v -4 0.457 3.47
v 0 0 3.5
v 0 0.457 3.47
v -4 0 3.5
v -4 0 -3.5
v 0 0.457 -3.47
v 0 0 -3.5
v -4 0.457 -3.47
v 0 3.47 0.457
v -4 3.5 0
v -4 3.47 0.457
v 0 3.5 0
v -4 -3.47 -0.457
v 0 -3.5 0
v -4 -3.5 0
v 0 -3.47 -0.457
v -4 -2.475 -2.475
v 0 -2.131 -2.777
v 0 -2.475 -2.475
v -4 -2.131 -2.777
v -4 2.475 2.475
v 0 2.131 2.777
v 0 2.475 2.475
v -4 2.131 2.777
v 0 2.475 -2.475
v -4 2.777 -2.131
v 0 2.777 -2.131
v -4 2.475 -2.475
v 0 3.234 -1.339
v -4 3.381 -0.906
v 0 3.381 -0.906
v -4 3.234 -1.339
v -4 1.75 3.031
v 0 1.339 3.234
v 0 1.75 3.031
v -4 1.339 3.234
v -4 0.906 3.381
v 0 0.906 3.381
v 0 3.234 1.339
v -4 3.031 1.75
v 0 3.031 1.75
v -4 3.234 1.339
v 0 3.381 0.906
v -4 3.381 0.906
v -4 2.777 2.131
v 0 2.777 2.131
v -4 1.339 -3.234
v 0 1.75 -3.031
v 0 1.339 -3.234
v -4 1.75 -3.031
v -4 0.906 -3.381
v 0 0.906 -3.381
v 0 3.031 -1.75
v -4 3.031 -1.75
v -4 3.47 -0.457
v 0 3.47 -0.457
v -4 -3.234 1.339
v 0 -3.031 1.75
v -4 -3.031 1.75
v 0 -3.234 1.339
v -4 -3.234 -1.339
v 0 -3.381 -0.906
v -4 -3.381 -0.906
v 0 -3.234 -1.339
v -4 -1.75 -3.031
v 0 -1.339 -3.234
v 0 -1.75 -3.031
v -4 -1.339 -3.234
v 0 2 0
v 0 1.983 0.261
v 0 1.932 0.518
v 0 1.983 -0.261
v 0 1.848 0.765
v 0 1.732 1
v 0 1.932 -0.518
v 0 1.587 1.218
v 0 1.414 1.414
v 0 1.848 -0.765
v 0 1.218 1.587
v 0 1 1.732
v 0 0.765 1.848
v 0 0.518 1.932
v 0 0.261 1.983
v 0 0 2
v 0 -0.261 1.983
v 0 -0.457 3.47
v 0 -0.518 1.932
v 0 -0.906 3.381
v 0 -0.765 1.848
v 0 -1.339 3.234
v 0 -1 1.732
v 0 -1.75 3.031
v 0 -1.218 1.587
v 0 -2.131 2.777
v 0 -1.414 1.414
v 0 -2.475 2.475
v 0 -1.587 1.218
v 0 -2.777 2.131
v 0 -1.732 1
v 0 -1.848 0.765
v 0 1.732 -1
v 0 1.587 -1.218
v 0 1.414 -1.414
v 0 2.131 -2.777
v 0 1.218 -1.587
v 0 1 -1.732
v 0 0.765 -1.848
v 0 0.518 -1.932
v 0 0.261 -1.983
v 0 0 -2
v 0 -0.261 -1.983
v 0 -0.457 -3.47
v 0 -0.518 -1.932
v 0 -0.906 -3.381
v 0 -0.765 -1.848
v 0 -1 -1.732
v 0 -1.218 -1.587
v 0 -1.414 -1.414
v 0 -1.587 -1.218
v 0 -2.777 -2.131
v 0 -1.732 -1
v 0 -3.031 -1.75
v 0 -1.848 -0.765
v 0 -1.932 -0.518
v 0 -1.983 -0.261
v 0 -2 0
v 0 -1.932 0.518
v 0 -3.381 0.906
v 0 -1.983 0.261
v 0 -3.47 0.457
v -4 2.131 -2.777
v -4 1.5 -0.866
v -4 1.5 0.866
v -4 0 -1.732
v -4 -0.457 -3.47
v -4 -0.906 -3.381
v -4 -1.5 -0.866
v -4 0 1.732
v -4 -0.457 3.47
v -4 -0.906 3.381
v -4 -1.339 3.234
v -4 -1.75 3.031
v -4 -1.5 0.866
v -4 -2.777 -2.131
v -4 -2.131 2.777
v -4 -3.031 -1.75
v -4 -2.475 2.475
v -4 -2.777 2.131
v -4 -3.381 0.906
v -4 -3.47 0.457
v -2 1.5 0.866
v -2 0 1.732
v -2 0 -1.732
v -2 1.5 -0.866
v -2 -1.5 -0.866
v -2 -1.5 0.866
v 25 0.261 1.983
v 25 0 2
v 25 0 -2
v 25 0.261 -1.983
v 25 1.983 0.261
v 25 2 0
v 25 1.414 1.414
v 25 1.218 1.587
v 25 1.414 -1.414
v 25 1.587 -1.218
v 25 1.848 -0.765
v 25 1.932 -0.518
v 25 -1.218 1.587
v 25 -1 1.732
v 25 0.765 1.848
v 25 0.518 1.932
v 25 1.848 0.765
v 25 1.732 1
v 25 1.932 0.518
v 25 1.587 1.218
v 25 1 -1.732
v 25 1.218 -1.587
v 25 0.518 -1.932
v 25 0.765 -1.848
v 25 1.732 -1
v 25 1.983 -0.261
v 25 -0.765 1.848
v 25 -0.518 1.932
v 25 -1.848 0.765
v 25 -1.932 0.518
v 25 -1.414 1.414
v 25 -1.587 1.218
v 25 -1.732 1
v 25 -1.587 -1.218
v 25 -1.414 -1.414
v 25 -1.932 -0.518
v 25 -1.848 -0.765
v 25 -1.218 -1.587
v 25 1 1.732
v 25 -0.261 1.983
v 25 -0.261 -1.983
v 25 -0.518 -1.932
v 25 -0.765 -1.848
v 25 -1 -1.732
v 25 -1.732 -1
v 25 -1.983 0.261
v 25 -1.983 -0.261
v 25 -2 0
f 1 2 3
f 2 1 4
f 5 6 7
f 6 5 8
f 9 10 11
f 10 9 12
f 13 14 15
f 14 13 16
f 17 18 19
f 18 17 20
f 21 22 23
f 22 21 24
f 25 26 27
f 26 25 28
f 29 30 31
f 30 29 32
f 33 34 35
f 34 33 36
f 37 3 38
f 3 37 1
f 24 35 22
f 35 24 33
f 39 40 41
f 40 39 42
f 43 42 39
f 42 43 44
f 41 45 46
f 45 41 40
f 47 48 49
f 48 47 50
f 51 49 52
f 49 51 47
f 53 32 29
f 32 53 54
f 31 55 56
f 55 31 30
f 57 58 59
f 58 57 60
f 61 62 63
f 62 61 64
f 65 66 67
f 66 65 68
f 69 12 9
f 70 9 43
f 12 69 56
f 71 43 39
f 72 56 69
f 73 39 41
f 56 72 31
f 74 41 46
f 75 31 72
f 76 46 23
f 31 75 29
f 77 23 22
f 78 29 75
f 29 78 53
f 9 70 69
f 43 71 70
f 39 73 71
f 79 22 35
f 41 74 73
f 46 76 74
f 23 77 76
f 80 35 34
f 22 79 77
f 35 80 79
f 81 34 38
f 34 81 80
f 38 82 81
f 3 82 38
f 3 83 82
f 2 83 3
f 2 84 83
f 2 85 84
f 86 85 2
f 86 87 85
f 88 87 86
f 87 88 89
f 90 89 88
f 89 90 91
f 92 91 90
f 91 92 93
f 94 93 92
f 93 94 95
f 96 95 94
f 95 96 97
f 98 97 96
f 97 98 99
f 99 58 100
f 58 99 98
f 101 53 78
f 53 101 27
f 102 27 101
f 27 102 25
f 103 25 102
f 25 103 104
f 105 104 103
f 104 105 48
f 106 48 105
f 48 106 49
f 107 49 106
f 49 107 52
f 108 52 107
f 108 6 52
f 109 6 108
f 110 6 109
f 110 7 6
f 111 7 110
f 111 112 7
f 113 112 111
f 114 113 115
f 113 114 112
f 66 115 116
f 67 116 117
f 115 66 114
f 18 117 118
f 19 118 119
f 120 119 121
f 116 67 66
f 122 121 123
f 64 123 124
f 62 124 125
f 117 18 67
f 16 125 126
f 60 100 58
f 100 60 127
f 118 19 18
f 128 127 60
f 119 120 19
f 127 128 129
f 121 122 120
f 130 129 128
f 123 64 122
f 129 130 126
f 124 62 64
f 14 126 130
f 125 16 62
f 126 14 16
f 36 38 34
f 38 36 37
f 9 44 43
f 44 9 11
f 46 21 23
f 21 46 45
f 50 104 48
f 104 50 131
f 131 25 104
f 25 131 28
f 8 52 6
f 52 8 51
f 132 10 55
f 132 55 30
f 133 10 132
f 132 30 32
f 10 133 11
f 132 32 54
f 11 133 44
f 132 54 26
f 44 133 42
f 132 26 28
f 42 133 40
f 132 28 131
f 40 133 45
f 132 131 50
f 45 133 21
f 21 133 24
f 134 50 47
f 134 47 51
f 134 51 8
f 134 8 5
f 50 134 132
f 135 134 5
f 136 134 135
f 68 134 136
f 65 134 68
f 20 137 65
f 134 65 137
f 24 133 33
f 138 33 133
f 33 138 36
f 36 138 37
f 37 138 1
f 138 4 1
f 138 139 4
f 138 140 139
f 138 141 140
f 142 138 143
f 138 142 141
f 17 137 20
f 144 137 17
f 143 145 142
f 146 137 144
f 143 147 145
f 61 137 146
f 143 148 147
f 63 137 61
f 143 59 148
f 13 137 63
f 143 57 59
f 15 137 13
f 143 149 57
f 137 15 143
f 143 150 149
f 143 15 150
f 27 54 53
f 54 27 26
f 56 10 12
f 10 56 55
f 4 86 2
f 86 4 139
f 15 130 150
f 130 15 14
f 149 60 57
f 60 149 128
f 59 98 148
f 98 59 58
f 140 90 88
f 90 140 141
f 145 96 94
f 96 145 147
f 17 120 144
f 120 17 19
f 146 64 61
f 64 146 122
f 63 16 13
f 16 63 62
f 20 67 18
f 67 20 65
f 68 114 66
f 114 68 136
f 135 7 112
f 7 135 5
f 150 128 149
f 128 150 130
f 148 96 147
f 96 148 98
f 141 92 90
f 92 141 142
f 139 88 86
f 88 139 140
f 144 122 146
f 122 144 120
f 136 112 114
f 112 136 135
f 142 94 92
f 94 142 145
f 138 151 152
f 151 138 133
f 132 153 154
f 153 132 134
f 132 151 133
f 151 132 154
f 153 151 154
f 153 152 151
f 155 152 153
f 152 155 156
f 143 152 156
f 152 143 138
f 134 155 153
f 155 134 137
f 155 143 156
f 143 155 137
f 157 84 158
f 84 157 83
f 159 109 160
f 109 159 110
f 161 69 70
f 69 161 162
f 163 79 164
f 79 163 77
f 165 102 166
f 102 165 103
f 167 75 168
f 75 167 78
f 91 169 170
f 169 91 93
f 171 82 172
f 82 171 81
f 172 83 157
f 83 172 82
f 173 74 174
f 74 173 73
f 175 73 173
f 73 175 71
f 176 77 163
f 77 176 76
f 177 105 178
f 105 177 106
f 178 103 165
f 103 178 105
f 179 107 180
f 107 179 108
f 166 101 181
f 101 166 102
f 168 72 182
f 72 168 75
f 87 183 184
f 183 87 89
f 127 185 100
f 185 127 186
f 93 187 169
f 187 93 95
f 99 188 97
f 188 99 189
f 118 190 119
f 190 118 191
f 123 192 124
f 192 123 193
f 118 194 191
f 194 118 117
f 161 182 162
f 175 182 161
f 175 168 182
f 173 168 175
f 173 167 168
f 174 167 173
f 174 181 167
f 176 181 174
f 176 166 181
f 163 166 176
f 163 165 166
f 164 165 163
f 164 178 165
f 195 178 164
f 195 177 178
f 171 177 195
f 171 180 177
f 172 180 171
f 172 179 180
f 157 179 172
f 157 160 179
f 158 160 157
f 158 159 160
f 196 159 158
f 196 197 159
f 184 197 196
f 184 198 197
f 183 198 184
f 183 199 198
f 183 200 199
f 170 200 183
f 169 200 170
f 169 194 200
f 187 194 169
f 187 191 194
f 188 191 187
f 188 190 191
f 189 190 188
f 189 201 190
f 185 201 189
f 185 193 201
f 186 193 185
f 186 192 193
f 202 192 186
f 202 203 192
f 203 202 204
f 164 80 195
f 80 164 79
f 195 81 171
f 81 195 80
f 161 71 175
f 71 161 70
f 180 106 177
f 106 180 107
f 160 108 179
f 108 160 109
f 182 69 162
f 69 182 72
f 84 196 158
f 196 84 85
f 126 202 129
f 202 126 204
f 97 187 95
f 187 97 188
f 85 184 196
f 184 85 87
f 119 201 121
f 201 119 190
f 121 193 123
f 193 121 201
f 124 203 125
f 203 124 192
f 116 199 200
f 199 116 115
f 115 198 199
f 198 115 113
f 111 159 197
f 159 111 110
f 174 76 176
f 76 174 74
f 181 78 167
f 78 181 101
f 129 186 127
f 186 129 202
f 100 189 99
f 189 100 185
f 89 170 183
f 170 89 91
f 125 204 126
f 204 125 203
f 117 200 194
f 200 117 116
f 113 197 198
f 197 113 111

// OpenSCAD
// file: ../../../lib/nutsnbolts/data-access.scad
// Norm Nuts and Bolts - a OpenSCAD library
// Copyright (C) 2012  Johannes Kneer

// This program is free software: you can redistribute it and/or modify
// it under the terms of the GNU General Public License as published by
// the Free Software Foundation, either version 3 of the License, or
// (at your option) any later version.

// This program is distributed in the hope that it will be useful,
// but WITHOUT ANY WARRANTY; without even the implied warranty of
// MERCHANTABILITY or FITNESS FOR A PARTICULAR PURPOSE.  See the
// GNU General Public License for more details.

// You should have received a copy of the GNU General Public License
// along with this program.  If not, see <http://www.gnu.org/licenses/>.


// DATABASE ACCESS FUNCTIONS AND CONSTANTS



// == CONSTANTS ==

// screw table access keys
_NB_S_DESC            = 0;
_NB_S_FAMKEY			    = 1;
_NB_S_LENGTH          = 2;
_NB_S_NOTHREAD_LENGTH = 3;

_NB_F_DESC			      = 0;
_NB_F_OUTER_DIA       = 1;
_NB_F_INNER_DIA       = 2;
_NB_F_LEAD            = 3;
_NB_F_KEY             = 4;
_NB_F_KEY_DEPTH       = 5;
_NB_F_HEAD_HEIGHT     = 6;
_NB_F_HEAD_DIA        = 7;
_NB_F_NUT_KEY         = 8;
_NB_F_NUT_HEIGHT      = 9;
_NB_F_PITCH_FINE      = 10;
_NB_F_PITCH_MEDIUM    = 11;
_NB_F_PITCH_COARSE    = 12;


// == FUNCTIONS ==

// _get_screw("descriptor")   with descriptor = M8x25
//   find the line for a general object in the data matrix

function _get_screw(n) = data_screw[search([n], data_screw)[0]];
function _get_screw_fam(n) = data_screw_fam[search([_get_screw(n)[_NB_S_FAMKEY]], data_screw_fam)[0]];

function _get_fam(n) = data_screw_fam[search([n], data_screw_fam)[0]];


// _get_XXXXX("descriptor") functions
// find a single property in the database

function _get_desc(n)        = _get_screw(n)[_NB_S_DESC];
function _get_famkey(n)         = _get_screw(n)[_NB_S_FAMKEY];
function _get_length(n)      = _get_screw(n)[_NB_S_LENGTH];
function _get_nt_length(n)   = _get_screw(n)[_NB_S_NOTHREAD_LENGTH];

function _get_outer_dia(n)   = _get_screw_fam(n)[_NB_F_OUTER_DIA];
function _get_inner_dia(n)   = _get_screw_fam(n)[_NB_F_INNER_DIA];
function _get_lead(n)        = _get_screw_fam(n)[_NB_F_LEAD];
function _get_head_height(n) = _get_screw_fam(n)[_NB_F_HEAD_HEIGHT];
function _get_head_dia(n)    = _get_screw_fam(n)[_NB_F_HEAD_DIA];
function _get_nut_key(n)     = _get_screw_fam(n)[_NB_F_NUT_KEY];
function _get_nut_height(n)  = _get_screw_fam(n)[_NB_F_NUT_HEIGHT];
function _get_fine_pitch(n)  = _get_screw_fam(n)[_NB_F_PITCH_FINE];
function _get_medium_pitch(n)  = _get_screw_fam(n)[_NB_F_PITCH_MEDIUM];
function _get_coarse_pitch(n)  = _get_screw_fam(n)[_NB_F_PITCH_COARSE];
// main file
/**********************************************************************************************************************
 **
 ** parts/vitamins/screw_M4x25.scad
 **
 ** This file renders a screw of the dimensions specified by the file name.
 **
 **********************************************************************************************************************/

include <../../../lib/nutsnbolts/cyl_head_bolt.scad>;

$fn = 48;
rotate([0, -90, 0])
	screw("M4x25"); 
